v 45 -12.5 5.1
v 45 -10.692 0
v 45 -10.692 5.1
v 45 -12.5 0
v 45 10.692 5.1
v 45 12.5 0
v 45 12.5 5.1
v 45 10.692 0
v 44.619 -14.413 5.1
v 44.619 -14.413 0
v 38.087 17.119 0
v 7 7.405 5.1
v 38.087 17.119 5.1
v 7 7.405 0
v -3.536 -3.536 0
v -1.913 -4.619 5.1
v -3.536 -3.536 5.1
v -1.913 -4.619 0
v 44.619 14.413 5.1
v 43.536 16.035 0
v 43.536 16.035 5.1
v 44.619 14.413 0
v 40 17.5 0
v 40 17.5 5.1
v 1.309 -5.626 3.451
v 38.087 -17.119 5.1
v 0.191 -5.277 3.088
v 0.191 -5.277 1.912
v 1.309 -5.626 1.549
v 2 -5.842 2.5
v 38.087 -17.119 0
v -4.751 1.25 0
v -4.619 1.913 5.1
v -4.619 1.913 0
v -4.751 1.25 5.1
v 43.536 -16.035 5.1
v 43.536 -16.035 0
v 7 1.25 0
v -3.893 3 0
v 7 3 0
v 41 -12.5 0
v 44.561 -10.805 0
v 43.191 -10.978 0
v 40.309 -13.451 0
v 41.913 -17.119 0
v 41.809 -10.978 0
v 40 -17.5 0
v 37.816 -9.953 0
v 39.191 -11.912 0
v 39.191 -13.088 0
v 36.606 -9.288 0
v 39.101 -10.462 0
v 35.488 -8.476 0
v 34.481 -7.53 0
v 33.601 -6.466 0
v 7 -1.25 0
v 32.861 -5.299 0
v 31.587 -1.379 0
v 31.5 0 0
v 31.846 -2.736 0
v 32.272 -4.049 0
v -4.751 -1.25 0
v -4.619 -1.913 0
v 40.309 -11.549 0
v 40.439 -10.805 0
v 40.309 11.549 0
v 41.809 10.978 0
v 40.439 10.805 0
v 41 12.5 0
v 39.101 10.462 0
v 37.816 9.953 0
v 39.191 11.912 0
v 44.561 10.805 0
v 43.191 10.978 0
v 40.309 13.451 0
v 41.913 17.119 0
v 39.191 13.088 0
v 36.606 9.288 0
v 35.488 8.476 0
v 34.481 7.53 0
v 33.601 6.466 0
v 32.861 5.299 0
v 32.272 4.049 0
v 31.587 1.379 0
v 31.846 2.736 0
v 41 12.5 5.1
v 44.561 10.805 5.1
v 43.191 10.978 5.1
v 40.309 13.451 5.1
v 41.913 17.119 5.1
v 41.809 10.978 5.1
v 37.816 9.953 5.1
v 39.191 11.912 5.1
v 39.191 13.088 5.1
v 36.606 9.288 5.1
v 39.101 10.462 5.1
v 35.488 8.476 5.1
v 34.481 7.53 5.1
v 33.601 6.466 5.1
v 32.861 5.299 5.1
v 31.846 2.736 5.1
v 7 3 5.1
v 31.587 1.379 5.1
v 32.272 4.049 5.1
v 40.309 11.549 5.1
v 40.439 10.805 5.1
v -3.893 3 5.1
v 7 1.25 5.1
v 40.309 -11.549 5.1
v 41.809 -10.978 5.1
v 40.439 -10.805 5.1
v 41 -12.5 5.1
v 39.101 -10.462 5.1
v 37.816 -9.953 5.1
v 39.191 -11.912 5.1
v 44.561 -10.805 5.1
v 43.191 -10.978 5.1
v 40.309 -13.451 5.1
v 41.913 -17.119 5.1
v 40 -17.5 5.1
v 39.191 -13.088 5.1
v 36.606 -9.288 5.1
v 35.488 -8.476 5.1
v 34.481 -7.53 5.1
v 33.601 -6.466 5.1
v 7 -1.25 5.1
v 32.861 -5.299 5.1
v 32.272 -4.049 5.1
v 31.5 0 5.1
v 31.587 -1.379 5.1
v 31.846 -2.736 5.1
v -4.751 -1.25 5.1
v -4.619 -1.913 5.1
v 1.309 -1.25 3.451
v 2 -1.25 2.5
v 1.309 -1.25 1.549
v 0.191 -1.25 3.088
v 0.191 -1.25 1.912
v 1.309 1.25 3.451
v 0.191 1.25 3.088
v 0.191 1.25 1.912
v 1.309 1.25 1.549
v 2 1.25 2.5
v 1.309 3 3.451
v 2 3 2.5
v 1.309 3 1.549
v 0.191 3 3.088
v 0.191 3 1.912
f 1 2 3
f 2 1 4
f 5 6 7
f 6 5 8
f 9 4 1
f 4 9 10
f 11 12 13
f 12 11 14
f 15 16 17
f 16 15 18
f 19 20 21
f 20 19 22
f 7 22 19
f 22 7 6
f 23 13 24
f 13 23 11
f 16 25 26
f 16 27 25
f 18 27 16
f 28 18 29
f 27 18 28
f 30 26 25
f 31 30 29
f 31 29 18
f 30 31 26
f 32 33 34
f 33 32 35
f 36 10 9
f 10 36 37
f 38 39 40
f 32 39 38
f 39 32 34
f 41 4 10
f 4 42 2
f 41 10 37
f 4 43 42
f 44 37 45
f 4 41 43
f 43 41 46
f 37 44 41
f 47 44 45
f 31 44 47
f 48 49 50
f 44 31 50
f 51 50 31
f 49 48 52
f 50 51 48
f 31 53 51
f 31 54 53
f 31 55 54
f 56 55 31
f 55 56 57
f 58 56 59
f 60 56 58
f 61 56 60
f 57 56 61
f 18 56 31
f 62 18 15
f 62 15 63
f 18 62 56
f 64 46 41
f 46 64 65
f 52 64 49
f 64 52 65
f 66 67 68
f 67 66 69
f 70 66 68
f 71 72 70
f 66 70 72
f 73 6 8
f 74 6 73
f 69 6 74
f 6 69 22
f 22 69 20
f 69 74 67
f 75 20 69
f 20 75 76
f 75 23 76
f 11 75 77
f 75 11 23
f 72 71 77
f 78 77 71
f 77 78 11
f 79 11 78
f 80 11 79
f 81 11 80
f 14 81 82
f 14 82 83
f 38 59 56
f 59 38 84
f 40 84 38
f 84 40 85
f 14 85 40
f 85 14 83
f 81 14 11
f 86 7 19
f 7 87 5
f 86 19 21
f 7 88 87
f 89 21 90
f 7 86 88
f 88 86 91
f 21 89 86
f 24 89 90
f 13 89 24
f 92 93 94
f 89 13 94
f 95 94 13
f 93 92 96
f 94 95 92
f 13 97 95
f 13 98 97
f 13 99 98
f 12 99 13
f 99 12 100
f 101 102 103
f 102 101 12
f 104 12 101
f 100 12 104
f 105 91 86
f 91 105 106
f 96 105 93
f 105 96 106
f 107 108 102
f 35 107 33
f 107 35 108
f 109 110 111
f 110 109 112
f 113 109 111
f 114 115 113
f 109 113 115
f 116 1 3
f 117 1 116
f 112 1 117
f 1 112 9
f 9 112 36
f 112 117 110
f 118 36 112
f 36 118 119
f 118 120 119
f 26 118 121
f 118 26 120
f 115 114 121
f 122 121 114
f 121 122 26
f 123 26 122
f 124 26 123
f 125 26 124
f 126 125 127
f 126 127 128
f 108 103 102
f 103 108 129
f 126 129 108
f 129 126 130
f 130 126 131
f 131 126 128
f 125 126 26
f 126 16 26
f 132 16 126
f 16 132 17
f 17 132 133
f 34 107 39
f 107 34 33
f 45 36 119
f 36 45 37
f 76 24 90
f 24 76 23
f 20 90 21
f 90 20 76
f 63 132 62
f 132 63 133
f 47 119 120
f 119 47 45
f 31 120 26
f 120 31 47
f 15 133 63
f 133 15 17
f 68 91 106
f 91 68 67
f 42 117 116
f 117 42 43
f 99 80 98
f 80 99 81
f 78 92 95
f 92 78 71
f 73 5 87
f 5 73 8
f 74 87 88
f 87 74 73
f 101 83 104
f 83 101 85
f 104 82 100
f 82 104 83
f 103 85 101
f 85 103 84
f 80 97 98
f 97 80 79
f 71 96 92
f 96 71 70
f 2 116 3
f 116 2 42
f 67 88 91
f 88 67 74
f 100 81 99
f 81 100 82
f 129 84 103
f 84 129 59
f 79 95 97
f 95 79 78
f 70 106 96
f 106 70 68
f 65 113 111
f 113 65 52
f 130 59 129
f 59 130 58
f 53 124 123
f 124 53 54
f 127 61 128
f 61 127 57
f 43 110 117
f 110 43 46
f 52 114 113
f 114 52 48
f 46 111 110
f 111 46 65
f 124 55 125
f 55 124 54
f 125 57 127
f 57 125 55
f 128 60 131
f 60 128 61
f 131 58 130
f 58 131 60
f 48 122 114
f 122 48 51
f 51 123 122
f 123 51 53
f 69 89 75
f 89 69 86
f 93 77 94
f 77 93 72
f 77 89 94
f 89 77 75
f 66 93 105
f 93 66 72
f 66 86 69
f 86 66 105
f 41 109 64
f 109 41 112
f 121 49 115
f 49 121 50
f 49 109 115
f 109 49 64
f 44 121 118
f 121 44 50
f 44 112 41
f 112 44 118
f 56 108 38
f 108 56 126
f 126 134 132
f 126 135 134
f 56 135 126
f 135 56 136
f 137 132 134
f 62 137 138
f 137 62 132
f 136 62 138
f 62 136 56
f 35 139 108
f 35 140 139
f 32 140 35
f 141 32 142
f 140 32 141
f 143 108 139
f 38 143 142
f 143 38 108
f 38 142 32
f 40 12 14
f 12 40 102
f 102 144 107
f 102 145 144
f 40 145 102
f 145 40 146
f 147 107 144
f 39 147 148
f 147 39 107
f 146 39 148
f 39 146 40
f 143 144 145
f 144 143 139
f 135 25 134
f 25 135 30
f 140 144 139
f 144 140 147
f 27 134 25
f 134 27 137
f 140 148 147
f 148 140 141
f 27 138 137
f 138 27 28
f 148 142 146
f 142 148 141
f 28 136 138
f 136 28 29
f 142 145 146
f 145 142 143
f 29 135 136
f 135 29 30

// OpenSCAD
b = 17;
w = 17;
mink = 5;

dist_btw_screw_holes = 25;
servo_out = 40;

h=5;

module holder() {
    difference() {
        // outer outline
        minkowski() {
            linear_extrude(height=h, convexity=10, twist=0)
                polygon(points=[[0,0],[servo_out, dist_btw_screw_holes / 2],[servo_out, - dist_btw_screw_holes / 2]], paths=[[0,1,2]]);
            cylinder(r=mink, h=0.1);
        }
        
        translate([servo_out + mink / 2, 0, 0])
            cylinder(r=11, h=5.1, $fn=50);
        
        translate([servo_out, dist_btw_screw_holes / 2, 0])
            cylinder(d=2, h=5.1);
        translate([servo_out, - dist_btw_screw_holes / 2, 0])
            cylinder(d=2, h=5.1);
        
        translate([-5, -1.25, 0])
            cube([12, 2.5, 5.1]);
        translate([-5, 3, 0])
            cube([12, 5, 5.1]);
        
        translate([1, 3, 2.5])
            rotate([90, 0, 0])
                cylinder(d=2, h=10);
    }
}

holder();
